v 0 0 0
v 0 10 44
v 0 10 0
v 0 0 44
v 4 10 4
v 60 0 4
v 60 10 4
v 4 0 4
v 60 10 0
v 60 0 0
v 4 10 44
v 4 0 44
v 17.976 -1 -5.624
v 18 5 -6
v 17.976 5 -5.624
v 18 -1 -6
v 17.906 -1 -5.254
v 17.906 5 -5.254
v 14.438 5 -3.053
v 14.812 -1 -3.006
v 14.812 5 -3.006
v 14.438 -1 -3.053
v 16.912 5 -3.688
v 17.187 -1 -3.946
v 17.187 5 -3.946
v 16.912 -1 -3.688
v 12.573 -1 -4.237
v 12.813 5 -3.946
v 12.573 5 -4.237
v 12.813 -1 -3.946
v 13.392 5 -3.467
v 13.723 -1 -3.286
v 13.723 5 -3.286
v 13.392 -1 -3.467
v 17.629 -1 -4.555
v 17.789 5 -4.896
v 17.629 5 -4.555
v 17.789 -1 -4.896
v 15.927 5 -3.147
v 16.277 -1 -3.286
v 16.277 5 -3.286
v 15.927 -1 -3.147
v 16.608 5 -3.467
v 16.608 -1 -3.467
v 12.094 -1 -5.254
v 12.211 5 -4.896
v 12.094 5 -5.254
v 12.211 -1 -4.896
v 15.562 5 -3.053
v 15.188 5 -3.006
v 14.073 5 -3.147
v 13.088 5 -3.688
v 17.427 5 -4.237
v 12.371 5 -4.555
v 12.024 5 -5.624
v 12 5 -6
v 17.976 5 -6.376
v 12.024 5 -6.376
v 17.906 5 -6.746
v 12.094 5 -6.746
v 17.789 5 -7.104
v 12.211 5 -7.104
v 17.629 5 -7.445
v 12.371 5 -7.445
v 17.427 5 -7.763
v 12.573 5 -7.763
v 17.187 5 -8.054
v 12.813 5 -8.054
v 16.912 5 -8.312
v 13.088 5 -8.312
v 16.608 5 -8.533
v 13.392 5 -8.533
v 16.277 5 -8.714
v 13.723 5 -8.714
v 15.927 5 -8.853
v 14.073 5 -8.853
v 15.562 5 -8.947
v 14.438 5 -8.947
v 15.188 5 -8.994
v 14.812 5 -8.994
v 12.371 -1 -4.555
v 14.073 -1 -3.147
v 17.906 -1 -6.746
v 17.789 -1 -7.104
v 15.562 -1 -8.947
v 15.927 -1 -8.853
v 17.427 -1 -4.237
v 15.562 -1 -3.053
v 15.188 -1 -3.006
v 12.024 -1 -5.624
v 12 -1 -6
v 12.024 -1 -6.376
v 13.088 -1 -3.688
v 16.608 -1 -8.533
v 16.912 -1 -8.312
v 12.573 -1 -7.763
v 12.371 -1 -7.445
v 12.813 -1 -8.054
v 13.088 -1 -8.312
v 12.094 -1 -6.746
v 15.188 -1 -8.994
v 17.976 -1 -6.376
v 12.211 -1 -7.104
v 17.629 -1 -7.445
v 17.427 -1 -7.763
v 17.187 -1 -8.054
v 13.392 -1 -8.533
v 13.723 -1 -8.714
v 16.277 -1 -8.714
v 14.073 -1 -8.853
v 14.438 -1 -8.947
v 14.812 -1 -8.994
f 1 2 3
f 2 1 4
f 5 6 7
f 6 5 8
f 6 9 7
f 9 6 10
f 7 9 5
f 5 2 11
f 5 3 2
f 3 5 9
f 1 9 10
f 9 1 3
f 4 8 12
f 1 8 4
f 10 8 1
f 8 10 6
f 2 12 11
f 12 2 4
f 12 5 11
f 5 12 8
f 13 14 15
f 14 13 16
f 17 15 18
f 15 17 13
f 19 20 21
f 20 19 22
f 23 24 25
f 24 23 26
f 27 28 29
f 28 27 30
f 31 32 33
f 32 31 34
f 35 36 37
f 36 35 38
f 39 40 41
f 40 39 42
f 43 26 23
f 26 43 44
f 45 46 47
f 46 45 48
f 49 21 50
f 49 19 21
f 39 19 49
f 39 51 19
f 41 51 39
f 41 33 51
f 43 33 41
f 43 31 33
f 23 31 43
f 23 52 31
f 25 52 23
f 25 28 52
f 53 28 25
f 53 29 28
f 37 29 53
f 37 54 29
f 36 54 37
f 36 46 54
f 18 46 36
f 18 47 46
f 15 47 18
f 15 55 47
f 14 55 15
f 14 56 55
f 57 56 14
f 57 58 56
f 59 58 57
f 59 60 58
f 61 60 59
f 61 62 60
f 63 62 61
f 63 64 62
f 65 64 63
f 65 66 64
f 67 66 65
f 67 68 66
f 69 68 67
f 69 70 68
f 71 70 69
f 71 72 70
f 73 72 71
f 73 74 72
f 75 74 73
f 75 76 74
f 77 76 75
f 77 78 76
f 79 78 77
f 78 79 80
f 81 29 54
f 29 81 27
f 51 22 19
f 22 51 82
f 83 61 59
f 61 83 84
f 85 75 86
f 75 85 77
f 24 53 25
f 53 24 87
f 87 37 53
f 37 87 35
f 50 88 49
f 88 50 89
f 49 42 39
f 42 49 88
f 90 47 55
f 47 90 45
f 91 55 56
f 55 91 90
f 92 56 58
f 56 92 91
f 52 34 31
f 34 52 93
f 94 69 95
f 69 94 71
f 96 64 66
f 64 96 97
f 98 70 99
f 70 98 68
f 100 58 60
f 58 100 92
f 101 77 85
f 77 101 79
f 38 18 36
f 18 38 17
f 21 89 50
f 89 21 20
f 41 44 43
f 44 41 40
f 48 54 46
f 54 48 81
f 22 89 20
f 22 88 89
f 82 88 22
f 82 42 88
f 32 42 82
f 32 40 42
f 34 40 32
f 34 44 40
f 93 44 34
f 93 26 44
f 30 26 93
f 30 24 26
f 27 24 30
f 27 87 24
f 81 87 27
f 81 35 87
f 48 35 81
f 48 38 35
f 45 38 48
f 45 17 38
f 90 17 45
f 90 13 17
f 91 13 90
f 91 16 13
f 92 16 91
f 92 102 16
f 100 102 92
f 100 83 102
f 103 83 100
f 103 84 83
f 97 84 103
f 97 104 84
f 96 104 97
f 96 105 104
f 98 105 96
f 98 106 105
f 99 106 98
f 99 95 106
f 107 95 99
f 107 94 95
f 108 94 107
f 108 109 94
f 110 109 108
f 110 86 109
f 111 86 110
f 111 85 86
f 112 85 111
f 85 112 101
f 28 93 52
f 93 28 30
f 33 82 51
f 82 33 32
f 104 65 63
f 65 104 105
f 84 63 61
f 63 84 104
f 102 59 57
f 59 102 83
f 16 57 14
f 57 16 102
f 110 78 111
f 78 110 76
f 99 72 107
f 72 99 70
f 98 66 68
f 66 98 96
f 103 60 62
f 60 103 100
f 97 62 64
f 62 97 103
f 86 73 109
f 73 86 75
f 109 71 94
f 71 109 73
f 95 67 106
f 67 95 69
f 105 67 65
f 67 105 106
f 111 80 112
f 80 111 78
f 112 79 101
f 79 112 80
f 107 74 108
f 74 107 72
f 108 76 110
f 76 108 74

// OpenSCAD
// Parameters
base_length = 60;
base_width = 10;
base_height = 4;

vertical_height = 40;
vertical_thickness = 4;

pin_radius = 3;
pin_height = 6;

pin_offset_from_end = 15; // Distance from the end of the base arm to the center of the pin

module base_arm() {
    cube([base_length, base_width, base_height]);
}

module vertical_arm() {
    translate([0, 0, base_height])
        cube([vertical_thickness, base_width, vertical_height]);
}

module pivot_pin() {
    translate([pin_offset_from_end, base_width/2, -pin_height])
        rotate([90, 0, 0])
            cylinder(h = pin_height, r = pin_radius, $fn=50);
}

module full_model() {
    union() {
        base_arm();
        vertical_arm();
        pivot_pin();
    }
}

full_model();
